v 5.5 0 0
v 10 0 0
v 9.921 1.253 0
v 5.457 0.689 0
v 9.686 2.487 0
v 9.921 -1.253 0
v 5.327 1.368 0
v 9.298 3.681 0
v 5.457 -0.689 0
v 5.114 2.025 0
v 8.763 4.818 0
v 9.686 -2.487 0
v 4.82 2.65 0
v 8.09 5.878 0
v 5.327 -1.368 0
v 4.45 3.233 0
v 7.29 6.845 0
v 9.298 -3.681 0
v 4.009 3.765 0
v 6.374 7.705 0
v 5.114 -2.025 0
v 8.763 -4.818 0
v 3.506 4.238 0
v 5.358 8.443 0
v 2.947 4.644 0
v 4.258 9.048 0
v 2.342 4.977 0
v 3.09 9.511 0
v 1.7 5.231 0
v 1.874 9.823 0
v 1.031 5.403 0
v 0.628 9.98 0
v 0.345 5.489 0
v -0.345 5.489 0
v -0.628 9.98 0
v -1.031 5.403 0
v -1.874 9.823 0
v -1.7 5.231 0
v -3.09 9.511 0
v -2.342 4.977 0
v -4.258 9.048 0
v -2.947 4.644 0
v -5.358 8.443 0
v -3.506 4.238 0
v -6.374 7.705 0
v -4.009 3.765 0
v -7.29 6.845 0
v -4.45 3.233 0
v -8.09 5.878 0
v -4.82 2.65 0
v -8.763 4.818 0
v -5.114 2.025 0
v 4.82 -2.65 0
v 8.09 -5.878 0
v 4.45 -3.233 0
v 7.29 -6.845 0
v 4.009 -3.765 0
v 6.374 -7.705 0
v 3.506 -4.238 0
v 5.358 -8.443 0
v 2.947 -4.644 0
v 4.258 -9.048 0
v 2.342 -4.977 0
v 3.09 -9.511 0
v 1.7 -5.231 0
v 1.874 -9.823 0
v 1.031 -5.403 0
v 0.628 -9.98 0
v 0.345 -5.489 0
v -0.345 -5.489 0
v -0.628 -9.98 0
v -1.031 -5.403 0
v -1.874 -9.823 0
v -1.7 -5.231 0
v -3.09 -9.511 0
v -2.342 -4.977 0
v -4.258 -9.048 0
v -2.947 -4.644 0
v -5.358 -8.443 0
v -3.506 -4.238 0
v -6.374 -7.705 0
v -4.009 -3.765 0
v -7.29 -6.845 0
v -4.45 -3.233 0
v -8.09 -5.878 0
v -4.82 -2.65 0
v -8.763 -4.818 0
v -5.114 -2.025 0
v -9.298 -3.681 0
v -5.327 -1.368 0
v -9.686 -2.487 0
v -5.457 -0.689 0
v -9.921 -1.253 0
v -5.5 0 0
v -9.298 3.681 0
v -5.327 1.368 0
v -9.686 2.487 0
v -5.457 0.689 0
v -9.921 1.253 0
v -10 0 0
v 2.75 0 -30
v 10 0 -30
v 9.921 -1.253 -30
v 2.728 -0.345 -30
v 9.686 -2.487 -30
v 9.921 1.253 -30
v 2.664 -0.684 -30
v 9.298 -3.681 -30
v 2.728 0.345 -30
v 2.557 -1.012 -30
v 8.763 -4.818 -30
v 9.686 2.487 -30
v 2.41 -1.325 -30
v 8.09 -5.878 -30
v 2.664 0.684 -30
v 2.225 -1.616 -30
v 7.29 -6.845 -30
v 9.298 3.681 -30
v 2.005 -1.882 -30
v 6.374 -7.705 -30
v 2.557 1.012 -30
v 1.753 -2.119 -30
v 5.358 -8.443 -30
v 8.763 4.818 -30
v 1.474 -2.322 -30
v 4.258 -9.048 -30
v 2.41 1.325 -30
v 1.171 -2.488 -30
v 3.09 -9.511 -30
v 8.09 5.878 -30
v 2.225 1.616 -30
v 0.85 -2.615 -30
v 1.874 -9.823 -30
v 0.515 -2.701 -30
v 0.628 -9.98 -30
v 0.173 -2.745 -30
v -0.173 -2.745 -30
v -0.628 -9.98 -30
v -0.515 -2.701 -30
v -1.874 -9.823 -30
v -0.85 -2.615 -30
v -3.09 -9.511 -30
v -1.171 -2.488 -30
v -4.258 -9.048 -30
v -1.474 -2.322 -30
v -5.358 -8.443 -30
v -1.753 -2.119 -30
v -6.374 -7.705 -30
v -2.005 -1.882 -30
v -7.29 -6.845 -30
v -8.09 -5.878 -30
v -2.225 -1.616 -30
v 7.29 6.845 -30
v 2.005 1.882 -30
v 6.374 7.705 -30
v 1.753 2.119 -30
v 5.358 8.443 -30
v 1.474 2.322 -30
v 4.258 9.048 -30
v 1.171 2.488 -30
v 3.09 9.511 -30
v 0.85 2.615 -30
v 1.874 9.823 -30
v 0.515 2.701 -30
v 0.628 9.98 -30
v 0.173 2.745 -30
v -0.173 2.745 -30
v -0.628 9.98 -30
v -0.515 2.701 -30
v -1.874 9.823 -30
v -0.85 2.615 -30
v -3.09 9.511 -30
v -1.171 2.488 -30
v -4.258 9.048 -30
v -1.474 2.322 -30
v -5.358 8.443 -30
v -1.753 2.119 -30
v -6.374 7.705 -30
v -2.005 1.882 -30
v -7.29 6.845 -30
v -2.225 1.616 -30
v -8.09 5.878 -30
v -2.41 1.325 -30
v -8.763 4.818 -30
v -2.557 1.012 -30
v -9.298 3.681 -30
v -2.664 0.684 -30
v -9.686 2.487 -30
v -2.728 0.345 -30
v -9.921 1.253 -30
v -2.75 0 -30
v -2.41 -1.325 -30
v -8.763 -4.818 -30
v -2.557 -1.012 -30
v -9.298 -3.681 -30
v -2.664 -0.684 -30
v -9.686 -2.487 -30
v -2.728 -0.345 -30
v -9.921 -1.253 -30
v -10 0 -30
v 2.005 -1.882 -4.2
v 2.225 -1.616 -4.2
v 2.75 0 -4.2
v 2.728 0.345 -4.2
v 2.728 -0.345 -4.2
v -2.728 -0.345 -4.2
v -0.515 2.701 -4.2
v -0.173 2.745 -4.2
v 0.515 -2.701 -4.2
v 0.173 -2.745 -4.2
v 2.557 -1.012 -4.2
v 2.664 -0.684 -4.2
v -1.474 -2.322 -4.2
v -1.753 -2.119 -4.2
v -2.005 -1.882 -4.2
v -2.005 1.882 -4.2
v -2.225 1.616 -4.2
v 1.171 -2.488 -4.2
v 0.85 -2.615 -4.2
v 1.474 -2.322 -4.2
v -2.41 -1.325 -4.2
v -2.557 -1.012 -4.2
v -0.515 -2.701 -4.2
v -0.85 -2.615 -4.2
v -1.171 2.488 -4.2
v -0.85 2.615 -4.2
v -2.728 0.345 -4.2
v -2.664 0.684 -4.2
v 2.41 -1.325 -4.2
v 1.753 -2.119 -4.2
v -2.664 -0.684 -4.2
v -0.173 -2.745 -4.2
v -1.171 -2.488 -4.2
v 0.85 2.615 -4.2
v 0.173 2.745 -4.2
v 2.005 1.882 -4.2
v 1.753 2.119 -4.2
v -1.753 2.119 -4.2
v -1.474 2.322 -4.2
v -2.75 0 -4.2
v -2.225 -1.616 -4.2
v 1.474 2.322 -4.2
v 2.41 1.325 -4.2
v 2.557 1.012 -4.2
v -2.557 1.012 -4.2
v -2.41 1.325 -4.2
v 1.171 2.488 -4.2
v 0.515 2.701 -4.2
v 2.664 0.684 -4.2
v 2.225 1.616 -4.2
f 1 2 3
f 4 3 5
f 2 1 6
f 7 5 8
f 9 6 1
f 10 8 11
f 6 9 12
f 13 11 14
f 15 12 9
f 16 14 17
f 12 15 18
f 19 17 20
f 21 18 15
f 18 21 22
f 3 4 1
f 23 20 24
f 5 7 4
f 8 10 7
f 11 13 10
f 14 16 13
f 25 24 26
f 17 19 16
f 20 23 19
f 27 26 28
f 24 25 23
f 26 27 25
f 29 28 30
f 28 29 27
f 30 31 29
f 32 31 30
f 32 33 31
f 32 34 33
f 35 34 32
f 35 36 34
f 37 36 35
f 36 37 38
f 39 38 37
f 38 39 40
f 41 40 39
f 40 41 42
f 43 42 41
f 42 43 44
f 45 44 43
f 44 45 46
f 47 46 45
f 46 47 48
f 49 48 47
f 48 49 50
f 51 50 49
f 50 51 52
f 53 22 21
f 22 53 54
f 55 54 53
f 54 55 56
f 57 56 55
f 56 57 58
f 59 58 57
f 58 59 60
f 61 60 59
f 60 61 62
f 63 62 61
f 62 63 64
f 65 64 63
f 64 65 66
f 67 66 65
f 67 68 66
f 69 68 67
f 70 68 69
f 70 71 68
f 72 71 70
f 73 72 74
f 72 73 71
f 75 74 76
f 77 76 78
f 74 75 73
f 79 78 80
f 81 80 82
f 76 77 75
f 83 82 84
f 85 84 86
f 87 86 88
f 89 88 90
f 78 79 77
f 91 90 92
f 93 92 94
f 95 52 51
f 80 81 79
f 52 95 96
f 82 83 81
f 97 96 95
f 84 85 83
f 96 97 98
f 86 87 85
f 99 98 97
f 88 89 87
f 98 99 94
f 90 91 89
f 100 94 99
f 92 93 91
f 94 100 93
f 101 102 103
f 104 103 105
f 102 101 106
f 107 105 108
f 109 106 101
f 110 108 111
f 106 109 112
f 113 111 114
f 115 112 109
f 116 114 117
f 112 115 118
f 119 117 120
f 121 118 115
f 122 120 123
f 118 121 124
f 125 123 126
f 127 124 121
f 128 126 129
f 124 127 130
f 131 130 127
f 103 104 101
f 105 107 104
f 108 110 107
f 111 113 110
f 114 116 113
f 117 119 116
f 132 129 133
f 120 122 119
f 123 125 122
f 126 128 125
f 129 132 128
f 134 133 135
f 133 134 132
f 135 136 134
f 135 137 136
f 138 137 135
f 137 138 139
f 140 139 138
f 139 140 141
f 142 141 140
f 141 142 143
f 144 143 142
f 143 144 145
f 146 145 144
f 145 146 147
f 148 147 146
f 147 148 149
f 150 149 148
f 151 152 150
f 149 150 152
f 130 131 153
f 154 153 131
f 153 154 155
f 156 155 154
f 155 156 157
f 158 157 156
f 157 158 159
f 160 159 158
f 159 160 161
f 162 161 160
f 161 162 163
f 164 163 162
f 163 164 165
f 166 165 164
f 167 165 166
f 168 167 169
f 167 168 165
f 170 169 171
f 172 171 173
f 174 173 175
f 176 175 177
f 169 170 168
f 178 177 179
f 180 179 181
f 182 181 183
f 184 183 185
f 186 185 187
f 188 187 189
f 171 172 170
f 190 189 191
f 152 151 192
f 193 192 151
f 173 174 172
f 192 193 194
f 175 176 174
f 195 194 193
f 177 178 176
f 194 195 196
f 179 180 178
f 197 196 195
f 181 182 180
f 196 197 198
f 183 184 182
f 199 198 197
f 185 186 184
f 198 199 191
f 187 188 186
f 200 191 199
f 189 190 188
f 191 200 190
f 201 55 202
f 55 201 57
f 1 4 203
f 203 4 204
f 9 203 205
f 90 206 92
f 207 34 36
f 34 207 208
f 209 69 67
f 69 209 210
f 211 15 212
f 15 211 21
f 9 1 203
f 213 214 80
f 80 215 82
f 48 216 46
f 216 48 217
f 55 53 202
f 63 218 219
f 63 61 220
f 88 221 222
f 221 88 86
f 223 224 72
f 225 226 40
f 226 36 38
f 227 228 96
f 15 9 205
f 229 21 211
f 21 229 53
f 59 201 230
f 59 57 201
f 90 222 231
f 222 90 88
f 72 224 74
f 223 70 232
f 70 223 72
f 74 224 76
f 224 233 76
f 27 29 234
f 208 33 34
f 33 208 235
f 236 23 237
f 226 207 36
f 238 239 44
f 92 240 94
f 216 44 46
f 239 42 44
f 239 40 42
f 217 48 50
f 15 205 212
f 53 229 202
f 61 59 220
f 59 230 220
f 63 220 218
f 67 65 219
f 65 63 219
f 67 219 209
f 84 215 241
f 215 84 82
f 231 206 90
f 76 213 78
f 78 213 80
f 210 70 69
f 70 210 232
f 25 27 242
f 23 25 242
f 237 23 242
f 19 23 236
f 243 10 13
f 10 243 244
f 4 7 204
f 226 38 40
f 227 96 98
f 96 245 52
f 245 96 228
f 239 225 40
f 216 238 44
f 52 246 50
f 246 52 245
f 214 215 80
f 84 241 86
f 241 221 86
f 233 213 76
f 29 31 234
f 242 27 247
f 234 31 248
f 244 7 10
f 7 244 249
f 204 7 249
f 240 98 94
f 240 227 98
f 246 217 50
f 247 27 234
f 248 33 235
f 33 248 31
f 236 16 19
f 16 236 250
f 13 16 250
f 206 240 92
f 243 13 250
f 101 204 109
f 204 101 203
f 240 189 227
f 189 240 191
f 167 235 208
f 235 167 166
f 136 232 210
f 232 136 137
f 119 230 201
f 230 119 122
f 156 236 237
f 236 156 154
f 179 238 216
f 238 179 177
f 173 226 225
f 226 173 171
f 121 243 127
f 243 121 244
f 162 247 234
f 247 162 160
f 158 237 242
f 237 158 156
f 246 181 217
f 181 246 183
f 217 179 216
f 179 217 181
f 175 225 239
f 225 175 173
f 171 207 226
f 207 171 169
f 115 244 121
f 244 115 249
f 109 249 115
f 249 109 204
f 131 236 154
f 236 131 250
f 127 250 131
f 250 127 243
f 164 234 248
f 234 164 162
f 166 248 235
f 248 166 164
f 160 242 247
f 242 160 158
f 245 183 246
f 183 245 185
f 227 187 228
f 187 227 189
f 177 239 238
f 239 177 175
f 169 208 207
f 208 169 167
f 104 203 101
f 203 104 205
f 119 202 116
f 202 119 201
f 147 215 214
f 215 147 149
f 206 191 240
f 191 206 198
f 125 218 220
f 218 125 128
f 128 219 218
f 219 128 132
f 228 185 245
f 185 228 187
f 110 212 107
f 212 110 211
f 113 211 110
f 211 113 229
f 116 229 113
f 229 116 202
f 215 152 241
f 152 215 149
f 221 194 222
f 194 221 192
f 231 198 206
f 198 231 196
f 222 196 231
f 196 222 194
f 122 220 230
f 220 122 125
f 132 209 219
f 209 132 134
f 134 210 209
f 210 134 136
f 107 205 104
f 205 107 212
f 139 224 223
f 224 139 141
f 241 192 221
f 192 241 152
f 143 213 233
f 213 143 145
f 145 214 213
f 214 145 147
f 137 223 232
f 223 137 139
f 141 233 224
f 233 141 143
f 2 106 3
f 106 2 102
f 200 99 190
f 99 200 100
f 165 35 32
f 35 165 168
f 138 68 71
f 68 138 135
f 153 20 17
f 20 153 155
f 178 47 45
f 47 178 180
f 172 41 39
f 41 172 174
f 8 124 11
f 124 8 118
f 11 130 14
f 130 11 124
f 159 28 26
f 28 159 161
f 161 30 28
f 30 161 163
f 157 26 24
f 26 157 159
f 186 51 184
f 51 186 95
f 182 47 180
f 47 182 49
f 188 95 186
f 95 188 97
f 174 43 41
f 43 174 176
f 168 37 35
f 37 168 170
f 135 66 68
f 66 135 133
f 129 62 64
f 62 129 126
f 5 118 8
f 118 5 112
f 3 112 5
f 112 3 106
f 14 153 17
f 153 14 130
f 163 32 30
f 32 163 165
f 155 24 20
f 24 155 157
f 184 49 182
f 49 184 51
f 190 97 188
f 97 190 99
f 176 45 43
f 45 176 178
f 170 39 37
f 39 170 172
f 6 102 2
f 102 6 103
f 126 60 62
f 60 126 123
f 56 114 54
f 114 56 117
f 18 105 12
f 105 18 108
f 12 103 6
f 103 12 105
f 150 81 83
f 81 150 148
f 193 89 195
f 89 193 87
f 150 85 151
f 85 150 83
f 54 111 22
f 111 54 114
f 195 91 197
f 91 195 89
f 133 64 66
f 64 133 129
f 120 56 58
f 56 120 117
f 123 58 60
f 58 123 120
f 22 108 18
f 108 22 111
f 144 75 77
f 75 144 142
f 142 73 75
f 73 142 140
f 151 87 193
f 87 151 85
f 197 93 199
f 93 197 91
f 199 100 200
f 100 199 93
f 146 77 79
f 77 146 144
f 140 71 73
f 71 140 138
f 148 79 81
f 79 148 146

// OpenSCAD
$fn = 50;


difference() {
	union() {
		translate(v = [0, 0, -30.0000000000]) {
			cylinder(h = 30, r = 10.0000000000);
		}
	}
	union() {
		translate(v = [0, 0, 0]) {
			rotate(a = [0, 0, 0]) {
				difference() {
					union() {
						#translate(v = [0, 0, -30.0000000000]) {
							cylinder(h = 30, r = 2.2500000000);
						}
						#translate(v = [0, 0, -4.2000000000]) {
							cylinder(h = 4.2000000000, r1 = 2.7500000000, r2 = 5.5000000000);
						}
						#translate(v = [0, 0, -30.0000000000]) {
							cylinder(h = 30, r = 2.7500000000);
						}
						#translate(v = [0, 0, -30.0000000000]) {
							cylinder(h = 30, r = 2.2500000000);
						}
					}
					union();
				}
			}
		}
	}
}
